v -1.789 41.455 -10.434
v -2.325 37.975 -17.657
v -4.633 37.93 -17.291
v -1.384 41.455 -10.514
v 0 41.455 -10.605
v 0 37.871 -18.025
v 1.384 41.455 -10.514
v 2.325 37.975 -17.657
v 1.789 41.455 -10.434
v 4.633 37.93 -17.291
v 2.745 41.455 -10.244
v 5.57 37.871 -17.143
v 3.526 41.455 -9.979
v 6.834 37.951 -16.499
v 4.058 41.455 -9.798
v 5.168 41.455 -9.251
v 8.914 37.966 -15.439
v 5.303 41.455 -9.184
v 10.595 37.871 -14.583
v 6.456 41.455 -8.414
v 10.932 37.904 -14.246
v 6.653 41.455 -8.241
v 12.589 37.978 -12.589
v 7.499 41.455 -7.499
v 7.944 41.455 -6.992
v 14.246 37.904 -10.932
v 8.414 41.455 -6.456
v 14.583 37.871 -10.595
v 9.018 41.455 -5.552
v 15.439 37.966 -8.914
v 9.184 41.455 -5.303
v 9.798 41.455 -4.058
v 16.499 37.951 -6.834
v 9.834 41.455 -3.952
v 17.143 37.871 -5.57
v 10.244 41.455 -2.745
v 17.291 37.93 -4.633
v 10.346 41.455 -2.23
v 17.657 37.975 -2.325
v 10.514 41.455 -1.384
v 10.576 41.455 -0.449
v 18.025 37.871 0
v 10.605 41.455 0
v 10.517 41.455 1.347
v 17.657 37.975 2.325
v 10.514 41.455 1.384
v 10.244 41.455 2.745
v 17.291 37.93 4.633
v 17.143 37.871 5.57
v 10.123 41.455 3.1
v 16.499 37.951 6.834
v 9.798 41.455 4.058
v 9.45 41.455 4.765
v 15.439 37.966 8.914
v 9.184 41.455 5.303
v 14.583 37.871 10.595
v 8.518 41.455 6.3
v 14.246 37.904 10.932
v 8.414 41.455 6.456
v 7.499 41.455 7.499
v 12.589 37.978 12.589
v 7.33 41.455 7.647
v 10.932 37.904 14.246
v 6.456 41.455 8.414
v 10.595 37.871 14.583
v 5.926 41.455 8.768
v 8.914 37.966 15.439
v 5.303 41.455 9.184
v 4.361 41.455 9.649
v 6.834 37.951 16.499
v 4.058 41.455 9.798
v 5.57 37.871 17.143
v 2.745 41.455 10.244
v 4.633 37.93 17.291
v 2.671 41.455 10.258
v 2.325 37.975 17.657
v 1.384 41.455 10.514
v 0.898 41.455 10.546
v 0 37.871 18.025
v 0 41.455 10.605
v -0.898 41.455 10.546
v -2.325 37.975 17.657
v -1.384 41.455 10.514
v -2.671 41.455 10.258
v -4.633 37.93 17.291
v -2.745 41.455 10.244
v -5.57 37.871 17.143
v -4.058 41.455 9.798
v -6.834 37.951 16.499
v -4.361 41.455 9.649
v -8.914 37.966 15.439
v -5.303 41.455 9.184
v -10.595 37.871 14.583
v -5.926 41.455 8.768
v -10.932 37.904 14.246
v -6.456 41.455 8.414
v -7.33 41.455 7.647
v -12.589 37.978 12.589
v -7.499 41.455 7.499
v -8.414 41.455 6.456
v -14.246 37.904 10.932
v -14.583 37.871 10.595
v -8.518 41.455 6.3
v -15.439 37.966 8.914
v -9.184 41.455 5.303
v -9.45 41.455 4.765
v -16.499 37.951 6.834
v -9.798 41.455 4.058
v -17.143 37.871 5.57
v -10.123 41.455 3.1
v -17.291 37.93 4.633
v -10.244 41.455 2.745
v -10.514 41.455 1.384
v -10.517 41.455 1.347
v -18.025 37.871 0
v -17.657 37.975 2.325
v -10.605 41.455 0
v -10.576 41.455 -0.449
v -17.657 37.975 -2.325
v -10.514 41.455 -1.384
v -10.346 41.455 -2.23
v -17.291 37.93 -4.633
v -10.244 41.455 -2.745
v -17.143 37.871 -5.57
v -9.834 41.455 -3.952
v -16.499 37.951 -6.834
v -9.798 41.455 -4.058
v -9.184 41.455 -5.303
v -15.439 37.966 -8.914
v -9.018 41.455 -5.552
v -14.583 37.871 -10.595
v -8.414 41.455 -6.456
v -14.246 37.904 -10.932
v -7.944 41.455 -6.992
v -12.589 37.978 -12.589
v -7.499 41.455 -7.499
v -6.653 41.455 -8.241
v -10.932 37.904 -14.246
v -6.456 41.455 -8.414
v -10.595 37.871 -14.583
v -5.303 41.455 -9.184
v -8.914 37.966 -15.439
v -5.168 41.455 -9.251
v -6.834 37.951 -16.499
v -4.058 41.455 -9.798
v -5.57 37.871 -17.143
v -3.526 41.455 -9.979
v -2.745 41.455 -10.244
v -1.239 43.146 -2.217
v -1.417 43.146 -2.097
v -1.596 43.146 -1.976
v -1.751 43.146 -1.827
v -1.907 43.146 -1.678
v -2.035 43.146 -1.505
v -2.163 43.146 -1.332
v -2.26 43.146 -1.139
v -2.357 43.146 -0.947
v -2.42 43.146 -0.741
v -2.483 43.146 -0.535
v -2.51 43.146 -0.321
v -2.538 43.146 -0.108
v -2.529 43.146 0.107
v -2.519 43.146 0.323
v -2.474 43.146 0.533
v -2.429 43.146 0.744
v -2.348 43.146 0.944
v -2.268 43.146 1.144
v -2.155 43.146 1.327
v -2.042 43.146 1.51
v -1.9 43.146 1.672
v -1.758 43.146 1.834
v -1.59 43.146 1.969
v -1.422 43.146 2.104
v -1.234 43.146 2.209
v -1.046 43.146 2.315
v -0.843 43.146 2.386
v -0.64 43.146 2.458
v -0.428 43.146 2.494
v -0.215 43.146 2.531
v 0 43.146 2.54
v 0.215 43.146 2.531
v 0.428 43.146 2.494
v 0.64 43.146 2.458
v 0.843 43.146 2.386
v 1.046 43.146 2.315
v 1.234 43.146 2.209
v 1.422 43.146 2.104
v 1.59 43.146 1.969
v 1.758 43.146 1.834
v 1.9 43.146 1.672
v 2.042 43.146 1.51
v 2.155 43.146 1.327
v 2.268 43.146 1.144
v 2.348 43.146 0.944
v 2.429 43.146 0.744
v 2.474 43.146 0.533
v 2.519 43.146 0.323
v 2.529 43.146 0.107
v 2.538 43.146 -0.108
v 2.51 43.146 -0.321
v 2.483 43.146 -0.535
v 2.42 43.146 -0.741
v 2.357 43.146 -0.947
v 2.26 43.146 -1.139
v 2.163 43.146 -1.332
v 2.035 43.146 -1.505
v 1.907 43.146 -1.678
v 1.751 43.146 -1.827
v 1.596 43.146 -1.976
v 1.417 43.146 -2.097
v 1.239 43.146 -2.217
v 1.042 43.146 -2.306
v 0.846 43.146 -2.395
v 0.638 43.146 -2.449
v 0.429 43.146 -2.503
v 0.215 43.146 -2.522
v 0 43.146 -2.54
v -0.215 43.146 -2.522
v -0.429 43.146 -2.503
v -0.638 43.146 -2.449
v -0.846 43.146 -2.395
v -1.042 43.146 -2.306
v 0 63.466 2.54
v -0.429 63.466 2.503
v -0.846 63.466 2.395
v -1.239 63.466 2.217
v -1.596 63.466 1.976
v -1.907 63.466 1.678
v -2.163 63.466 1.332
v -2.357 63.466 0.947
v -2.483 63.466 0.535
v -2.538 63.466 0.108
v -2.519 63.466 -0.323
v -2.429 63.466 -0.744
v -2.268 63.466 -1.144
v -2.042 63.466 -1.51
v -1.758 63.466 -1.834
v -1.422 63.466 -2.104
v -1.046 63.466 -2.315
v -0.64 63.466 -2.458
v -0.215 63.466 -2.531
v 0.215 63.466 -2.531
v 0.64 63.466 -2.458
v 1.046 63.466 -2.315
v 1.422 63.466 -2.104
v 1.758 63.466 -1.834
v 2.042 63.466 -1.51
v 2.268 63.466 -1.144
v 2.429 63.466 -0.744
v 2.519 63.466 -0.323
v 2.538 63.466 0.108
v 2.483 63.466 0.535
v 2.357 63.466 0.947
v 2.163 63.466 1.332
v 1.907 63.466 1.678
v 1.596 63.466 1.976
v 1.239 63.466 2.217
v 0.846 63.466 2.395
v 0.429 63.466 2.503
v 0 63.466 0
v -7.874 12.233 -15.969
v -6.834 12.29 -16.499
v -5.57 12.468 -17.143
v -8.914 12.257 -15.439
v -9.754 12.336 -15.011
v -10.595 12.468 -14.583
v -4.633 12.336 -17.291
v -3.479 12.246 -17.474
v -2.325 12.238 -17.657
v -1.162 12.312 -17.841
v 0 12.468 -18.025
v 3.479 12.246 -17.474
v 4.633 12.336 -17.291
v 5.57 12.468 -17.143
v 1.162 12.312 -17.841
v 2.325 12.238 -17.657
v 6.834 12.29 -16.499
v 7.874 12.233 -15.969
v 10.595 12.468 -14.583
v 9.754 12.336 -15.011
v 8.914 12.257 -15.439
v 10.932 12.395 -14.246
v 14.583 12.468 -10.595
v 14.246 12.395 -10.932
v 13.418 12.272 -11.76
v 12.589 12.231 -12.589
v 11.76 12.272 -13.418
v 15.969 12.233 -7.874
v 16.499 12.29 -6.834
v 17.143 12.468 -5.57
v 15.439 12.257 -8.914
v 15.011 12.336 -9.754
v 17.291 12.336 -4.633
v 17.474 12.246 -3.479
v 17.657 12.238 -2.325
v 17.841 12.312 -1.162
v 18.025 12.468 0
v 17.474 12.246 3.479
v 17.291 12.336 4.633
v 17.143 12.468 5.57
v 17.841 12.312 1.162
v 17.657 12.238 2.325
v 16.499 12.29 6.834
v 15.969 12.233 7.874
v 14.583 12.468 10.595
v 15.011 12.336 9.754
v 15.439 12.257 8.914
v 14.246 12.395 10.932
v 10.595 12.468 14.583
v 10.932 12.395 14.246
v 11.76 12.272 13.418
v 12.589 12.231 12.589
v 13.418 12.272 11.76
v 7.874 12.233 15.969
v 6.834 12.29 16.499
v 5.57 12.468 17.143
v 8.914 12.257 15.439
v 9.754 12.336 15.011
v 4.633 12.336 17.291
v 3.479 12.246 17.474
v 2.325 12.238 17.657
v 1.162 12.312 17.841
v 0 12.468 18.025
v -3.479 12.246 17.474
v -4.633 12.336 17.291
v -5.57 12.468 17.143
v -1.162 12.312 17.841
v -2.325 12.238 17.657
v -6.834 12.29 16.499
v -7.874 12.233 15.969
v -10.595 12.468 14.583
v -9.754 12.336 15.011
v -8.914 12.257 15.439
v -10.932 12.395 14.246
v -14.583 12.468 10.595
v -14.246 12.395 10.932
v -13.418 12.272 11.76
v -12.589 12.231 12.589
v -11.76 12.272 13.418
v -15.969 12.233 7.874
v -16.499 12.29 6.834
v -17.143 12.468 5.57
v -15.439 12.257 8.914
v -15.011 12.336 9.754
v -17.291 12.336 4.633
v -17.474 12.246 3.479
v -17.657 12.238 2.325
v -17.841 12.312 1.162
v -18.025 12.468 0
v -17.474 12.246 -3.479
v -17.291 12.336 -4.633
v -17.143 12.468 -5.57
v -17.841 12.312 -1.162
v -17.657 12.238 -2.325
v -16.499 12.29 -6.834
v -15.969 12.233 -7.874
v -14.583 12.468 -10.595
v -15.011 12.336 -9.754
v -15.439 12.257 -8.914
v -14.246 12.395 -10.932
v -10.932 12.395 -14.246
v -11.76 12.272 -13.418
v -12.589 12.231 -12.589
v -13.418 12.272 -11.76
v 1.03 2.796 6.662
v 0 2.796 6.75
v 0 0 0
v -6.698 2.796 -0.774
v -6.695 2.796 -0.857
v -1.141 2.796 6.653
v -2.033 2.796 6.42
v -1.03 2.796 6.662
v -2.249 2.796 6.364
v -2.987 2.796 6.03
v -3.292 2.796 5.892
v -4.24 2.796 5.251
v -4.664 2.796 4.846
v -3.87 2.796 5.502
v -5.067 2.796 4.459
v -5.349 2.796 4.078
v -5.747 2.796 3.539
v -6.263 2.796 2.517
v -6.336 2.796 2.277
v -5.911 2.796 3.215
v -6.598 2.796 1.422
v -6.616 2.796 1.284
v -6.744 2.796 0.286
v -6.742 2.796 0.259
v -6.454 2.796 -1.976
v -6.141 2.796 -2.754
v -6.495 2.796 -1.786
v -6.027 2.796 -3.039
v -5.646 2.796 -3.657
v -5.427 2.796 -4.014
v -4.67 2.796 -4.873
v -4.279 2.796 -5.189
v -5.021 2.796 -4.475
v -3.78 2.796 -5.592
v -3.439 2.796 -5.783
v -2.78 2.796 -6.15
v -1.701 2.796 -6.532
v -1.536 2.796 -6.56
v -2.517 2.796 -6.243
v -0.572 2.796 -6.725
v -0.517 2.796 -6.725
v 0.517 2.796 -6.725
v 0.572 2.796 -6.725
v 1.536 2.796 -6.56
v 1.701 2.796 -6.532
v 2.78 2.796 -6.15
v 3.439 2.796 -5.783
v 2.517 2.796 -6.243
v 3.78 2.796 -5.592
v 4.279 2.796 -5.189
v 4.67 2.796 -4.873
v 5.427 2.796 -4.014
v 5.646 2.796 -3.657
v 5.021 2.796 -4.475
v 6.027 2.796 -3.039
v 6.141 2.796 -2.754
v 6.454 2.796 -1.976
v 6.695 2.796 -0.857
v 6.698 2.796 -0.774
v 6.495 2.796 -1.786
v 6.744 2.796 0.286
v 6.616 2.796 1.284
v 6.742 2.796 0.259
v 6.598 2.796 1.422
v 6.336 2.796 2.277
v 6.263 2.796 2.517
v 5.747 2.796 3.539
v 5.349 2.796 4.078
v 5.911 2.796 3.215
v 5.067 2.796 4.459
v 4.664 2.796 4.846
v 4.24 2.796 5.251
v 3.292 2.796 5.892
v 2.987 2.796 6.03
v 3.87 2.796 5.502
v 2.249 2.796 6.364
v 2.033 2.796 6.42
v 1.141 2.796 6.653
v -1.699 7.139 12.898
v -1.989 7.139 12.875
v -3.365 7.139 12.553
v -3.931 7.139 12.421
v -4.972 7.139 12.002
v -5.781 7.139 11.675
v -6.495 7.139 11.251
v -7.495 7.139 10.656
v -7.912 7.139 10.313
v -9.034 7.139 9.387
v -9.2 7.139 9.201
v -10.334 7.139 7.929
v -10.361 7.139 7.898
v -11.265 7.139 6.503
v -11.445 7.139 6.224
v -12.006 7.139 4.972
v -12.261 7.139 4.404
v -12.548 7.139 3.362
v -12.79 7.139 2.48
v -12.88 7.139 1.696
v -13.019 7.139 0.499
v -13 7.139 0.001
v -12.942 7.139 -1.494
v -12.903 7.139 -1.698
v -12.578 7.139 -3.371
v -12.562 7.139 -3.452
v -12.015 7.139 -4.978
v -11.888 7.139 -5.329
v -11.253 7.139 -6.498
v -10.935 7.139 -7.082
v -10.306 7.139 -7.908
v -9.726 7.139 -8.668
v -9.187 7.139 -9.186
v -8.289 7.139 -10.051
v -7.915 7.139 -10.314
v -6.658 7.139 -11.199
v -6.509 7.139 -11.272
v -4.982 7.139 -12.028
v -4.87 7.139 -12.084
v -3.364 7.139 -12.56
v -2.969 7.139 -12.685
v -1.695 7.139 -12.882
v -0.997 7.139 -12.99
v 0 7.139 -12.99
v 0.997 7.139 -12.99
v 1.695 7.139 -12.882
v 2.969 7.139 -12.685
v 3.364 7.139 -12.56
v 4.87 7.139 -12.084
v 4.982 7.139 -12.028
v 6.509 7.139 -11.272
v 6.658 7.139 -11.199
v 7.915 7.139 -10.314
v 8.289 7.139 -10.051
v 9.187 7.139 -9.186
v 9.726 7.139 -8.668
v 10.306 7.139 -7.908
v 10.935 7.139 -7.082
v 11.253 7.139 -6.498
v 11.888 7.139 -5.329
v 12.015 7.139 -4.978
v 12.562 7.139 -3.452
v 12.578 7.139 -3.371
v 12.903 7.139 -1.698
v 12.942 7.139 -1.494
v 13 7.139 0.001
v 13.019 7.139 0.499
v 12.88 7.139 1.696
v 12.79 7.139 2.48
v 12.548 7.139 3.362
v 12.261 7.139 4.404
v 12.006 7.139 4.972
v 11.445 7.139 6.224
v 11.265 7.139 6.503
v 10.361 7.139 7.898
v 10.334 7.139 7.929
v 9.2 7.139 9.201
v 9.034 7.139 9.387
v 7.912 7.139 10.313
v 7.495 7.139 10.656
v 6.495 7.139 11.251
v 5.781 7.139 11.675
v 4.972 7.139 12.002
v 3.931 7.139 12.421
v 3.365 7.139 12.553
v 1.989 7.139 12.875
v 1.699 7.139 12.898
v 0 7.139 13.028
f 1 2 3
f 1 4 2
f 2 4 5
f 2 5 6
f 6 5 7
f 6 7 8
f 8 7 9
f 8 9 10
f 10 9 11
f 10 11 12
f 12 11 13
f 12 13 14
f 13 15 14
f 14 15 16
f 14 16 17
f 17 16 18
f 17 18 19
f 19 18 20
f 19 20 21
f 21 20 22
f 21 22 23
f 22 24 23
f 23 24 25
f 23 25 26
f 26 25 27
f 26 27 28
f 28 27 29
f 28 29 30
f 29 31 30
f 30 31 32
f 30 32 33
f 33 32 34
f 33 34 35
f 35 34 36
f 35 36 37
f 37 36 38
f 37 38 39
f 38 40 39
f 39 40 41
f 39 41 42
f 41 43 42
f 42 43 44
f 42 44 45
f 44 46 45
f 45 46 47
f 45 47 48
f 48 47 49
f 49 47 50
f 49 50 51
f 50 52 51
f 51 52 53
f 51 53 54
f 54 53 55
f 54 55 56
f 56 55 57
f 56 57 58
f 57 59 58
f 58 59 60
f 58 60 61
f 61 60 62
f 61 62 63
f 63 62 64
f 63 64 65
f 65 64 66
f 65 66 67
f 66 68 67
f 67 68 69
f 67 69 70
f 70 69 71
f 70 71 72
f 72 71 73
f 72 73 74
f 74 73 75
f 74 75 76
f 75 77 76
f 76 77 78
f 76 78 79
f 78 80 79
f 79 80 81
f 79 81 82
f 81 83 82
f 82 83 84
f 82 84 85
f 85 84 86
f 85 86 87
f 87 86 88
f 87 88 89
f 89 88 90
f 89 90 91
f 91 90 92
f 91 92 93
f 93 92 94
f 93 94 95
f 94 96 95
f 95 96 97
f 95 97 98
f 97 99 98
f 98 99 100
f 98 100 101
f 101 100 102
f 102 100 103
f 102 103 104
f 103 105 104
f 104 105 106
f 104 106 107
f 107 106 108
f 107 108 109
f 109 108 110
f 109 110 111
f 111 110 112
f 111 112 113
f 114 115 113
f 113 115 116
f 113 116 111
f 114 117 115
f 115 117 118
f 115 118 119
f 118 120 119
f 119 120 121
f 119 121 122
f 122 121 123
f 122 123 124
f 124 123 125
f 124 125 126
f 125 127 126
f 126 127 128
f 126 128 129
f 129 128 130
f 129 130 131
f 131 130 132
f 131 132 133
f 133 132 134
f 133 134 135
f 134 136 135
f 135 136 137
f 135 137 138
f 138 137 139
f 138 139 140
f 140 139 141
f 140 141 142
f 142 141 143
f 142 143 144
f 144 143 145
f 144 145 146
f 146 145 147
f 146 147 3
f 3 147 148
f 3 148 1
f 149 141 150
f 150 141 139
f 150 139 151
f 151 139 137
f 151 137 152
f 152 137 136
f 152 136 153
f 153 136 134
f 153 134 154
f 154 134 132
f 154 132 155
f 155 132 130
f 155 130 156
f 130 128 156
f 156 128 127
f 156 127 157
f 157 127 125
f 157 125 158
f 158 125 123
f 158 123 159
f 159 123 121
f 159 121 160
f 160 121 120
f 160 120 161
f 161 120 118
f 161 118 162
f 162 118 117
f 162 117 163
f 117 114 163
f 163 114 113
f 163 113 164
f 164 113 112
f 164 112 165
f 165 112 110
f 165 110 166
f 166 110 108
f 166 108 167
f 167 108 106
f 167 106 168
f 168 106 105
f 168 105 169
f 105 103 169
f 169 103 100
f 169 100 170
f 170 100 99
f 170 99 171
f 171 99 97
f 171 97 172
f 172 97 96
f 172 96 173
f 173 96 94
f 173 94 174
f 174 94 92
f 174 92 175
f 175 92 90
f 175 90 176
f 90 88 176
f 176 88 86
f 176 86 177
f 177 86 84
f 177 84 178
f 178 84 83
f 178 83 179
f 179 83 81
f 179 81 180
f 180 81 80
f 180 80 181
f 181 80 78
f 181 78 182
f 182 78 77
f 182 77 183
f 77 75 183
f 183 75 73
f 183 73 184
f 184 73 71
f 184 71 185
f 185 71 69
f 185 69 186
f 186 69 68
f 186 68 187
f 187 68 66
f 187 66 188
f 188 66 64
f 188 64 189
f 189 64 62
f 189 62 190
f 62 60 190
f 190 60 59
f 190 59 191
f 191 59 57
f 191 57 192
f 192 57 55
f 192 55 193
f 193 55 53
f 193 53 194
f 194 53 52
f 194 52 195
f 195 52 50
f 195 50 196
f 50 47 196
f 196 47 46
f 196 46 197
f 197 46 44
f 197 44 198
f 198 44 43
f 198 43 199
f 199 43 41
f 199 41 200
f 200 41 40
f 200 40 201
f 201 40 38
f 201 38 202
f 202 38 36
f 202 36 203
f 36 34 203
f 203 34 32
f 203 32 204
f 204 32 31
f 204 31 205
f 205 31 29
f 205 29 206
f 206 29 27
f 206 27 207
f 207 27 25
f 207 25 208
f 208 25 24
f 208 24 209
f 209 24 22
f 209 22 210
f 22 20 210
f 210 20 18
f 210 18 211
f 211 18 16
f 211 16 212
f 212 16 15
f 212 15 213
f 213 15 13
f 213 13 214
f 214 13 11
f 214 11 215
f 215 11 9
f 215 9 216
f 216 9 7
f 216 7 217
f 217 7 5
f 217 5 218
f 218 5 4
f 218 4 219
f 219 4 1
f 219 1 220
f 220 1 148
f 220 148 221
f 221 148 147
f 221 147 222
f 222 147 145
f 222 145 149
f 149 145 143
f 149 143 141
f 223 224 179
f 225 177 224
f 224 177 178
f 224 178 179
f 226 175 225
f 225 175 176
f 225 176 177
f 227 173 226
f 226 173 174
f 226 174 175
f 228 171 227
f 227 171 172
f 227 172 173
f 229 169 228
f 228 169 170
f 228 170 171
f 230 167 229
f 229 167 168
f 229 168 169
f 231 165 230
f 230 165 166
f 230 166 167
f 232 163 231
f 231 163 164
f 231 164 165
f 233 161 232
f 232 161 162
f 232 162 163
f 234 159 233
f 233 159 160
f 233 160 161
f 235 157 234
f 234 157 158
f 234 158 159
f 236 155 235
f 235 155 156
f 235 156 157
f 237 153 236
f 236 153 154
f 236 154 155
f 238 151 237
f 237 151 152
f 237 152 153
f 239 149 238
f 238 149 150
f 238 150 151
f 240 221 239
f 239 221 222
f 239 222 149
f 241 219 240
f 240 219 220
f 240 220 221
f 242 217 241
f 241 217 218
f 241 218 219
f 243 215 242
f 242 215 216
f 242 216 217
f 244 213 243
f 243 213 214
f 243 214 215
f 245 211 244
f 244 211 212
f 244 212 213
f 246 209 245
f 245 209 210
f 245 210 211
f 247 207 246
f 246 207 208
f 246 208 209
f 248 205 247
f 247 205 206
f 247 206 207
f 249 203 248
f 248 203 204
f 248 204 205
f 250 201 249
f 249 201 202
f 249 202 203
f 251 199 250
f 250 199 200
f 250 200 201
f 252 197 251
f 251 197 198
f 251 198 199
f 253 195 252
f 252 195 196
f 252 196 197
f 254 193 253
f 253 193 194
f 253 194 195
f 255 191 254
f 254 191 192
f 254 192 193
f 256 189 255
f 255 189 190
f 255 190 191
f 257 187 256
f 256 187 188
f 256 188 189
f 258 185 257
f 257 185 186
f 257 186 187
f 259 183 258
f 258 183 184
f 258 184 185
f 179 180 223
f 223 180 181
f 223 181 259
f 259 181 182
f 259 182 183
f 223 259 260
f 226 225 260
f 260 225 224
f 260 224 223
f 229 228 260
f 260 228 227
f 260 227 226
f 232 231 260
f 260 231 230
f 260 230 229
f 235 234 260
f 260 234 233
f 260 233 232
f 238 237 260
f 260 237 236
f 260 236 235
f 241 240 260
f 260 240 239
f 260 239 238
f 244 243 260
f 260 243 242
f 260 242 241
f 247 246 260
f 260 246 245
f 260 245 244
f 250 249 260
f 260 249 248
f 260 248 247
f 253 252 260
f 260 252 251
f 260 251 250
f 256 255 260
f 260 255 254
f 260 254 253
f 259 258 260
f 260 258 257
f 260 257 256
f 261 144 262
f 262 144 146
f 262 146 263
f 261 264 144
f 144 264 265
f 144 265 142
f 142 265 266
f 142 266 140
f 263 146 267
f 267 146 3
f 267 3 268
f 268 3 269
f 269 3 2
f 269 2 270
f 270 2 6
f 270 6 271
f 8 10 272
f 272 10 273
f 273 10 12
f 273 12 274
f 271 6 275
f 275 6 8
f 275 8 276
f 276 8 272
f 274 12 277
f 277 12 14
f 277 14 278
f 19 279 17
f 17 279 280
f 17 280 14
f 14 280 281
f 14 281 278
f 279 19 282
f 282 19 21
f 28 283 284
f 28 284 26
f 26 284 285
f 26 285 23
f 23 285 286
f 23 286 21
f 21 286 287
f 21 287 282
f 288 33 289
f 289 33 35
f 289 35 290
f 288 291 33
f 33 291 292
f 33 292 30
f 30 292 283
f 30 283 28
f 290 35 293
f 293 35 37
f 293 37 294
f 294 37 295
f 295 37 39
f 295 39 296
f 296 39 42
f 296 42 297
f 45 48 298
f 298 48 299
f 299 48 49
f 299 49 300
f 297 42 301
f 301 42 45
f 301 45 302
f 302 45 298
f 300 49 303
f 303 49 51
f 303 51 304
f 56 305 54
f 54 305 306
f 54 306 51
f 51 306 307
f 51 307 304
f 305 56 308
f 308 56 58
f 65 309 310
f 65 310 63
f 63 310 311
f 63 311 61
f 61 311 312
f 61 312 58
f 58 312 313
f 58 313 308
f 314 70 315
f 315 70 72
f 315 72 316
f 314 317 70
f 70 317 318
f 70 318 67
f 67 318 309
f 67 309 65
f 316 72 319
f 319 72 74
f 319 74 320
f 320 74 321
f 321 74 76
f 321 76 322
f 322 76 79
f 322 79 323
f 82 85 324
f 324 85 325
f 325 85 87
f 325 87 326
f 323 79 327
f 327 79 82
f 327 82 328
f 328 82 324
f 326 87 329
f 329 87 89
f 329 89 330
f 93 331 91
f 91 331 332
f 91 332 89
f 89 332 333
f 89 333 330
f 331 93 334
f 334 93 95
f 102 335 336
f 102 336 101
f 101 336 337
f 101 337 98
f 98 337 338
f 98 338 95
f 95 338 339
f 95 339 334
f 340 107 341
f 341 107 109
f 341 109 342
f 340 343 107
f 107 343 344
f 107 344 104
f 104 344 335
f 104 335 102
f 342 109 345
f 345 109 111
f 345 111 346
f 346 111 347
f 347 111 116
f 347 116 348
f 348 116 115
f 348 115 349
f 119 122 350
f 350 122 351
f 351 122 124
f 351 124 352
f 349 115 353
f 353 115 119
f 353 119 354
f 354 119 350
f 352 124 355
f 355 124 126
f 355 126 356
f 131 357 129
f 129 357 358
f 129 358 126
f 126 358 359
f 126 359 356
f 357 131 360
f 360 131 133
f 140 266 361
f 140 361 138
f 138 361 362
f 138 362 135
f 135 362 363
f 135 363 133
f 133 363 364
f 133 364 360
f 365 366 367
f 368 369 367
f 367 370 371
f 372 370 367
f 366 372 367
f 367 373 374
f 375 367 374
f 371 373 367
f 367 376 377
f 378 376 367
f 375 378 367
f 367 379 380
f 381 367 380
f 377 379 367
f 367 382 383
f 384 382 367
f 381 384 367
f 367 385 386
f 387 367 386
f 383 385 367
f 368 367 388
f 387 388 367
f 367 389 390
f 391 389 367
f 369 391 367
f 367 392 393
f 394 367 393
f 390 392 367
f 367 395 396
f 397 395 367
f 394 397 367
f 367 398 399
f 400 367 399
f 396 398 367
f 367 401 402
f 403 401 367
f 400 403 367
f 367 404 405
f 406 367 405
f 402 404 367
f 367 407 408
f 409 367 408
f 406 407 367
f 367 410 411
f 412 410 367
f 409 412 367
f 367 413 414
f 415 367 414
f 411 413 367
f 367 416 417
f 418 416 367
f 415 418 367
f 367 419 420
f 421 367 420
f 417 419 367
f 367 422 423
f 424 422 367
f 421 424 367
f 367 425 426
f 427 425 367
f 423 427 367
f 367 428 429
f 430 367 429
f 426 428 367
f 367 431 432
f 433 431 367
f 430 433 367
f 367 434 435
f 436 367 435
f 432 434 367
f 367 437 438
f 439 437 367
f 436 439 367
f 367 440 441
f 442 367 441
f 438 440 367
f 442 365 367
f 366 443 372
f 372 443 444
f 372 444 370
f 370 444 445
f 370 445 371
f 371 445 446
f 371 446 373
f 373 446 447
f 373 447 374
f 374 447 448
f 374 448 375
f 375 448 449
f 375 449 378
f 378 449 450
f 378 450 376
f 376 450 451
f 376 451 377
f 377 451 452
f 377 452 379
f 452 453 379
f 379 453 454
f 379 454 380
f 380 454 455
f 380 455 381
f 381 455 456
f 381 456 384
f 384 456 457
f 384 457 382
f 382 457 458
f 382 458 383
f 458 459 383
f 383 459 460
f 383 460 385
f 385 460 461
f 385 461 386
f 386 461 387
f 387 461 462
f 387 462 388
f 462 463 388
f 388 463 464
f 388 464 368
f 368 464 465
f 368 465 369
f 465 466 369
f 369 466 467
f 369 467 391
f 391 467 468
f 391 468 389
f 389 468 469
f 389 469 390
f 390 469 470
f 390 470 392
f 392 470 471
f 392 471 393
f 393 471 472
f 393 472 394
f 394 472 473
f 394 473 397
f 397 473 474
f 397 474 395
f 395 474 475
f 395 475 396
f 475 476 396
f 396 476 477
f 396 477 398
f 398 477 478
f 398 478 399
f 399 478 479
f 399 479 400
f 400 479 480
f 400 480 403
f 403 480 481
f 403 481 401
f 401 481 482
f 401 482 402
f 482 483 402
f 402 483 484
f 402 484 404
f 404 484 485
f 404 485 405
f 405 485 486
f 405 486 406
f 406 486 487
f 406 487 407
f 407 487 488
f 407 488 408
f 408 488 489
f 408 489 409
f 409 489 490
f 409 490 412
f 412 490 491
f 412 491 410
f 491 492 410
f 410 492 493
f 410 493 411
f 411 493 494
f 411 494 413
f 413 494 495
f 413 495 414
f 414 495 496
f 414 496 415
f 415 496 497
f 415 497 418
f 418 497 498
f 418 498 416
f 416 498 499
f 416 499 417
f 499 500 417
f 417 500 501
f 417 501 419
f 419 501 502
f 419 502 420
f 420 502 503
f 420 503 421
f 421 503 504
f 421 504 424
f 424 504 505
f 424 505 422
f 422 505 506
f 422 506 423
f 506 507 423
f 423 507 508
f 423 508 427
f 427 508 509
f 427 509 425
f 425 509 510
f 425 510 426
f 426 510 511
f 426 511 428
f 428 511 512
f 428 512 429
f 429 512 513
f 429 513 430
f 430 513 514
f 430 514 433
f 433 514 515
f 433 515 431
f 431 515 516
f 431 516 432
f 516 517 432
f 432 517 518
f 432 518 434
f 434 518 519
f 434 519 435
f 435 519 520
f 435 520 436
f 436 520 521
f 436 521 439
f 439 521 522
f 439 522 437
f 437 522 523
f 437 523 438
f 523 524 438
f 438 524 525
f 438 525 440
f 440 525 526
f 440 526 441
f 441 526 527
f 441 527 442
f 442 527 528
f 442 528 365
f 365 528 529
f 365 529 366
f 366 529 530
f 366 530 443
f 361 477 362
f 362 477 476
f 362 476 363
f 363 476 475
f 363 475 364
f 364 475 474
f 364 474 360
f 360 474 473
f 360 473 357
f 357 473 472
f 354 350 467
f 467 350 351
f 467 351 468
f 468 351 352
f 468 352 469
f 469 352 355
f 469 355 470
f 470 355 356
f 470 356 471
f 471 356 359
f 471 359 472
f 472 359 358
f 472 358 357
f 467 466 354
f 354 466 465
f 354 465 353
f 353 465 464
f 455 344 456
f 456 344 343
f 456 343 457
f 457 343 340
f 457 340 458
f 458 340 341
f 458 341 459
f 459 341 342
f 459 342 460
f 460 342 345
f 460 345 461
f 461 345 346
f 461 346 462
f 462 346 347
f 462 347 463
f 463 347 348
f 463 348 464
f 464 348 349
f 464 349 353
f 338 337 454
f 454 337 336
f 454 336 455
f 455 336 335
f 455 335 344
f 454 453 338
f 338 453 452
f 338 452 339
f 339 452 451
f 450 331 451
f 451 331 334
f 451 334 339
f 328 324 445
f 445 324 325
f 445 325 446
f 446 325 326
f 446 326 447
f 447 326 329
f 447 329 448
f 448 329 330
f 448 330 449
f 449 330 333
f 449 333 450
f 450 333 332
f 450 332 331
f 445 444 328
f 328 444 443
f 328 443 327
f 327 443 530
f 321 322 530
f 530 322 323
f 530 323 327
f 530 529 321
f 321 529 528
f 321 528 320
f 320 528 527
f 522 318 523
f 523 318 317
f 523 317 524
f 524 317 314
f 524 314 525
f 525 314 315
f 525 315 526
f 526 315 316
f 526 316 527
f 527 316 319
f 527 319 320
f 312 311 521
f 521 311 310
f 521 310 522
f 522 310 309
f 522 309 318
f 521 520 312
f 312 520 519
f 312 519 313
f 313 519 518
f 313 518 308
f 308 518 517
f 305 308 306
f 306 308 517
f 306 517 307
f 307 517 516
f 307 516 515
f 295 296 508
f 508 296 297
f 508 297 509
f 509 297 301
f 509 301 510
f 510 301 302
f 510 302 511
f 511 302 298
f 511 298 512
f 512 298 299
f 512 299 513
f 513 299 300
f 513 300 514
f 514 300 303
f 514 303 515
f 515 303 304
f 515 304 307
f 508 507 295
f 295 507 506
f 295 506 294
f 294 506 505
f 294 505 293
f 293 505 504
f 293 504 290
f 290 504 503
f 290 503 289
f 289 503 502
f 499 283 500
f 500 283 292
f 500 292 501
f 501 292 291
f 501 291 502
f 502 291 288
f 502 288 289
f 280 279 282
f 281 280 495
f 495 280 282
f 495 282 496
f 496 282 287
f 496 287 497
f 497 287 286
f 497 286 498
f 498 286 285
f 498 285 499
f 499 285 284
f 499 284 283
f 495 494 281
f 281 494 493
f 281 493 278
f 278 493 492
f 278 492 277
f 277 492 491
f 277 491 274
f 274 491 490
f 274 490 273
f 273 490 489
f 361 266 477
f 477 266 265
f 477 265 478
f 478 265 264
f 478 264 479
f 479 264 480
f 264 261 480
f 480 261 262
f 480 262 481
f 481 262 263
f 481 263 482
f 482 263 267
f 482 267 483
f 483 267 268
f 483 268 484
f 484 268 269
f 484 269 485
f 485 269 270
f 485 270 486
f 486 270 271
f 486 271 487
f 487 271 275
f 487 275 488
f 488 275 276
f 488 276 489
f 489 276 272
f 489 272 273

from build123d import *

# Parameters (mm, degrees)
SKETCH2_OUTSIDE_W  = 54.332
SKETCH2_OUTSIDE_H  = 54.332
CUT_EXTRUDE2_DEPTH = 69.393971984


with BuildPart() as part:
    # Sketch1 → Revolve2 (revolve)
    with BuildSketch(Plane.XY, mode=Mode.PRIVATE) as revolve2_sk:
        Polygon((0, 0), (6.749601751, 2.795776586), (13.028153792, 7.138607178), (18.025292424, 12.467968867), (18.025292424, 37.870552131), (10.605112725, 41.454777816), (2.54, 43.145841757), (2.54, 63.465841757), (0, 63.465841757), align=None)
    revolve(revolve2_sk.sketch.rotate(Axis((0, 63.465841757, 0), (0, -1, 0)), 90), axis=Axis((0, 63.465841757, 0), (0, -1, 0)))

    # Sketch2 outside → Cut-Extrude2 (cut, through all)
    with BuildSketch(Plane(origin=(0, 63.465841757, 0), x_dir=(1, 0, 0), z_dir=(0, 1, 0))):
        Rectangle(SKETCH2_OUTSIDE_W, SKETCH2_OUTSIDE_H)
        Polygon((-10.595001055, 14.582767899), (-14.582767899, 10.595001055), (-17.143071818, 5.570121687), (-18.025292424, 0), (-17.143071818, -5.570121687), (-14.582767899, -10.595001055), (-10.595001055, -14.582767899), (-5.570121687, -17.143071818), (0, -18.025292424), (5.570121687, -17.143071818), (10.595001055, -14.582767899), (14.582767899, -10.595001055), (17.143071818, -5.570121687), (18.025292424, 0), (17.143071818, 5.570121687), (14.582767899, 10.595001055), (10.595001055, 14.582767899), (5.570121687, 17.143071818), (0, 18.025292424), (-5.570121687, 17.143071818), align=None, mode=Mode.SUBTRACT)
    extrude(amount=-CUT_EXTRUDE2_DEPTH, mode=Mode.SUBTRACT)


solid = part.part
